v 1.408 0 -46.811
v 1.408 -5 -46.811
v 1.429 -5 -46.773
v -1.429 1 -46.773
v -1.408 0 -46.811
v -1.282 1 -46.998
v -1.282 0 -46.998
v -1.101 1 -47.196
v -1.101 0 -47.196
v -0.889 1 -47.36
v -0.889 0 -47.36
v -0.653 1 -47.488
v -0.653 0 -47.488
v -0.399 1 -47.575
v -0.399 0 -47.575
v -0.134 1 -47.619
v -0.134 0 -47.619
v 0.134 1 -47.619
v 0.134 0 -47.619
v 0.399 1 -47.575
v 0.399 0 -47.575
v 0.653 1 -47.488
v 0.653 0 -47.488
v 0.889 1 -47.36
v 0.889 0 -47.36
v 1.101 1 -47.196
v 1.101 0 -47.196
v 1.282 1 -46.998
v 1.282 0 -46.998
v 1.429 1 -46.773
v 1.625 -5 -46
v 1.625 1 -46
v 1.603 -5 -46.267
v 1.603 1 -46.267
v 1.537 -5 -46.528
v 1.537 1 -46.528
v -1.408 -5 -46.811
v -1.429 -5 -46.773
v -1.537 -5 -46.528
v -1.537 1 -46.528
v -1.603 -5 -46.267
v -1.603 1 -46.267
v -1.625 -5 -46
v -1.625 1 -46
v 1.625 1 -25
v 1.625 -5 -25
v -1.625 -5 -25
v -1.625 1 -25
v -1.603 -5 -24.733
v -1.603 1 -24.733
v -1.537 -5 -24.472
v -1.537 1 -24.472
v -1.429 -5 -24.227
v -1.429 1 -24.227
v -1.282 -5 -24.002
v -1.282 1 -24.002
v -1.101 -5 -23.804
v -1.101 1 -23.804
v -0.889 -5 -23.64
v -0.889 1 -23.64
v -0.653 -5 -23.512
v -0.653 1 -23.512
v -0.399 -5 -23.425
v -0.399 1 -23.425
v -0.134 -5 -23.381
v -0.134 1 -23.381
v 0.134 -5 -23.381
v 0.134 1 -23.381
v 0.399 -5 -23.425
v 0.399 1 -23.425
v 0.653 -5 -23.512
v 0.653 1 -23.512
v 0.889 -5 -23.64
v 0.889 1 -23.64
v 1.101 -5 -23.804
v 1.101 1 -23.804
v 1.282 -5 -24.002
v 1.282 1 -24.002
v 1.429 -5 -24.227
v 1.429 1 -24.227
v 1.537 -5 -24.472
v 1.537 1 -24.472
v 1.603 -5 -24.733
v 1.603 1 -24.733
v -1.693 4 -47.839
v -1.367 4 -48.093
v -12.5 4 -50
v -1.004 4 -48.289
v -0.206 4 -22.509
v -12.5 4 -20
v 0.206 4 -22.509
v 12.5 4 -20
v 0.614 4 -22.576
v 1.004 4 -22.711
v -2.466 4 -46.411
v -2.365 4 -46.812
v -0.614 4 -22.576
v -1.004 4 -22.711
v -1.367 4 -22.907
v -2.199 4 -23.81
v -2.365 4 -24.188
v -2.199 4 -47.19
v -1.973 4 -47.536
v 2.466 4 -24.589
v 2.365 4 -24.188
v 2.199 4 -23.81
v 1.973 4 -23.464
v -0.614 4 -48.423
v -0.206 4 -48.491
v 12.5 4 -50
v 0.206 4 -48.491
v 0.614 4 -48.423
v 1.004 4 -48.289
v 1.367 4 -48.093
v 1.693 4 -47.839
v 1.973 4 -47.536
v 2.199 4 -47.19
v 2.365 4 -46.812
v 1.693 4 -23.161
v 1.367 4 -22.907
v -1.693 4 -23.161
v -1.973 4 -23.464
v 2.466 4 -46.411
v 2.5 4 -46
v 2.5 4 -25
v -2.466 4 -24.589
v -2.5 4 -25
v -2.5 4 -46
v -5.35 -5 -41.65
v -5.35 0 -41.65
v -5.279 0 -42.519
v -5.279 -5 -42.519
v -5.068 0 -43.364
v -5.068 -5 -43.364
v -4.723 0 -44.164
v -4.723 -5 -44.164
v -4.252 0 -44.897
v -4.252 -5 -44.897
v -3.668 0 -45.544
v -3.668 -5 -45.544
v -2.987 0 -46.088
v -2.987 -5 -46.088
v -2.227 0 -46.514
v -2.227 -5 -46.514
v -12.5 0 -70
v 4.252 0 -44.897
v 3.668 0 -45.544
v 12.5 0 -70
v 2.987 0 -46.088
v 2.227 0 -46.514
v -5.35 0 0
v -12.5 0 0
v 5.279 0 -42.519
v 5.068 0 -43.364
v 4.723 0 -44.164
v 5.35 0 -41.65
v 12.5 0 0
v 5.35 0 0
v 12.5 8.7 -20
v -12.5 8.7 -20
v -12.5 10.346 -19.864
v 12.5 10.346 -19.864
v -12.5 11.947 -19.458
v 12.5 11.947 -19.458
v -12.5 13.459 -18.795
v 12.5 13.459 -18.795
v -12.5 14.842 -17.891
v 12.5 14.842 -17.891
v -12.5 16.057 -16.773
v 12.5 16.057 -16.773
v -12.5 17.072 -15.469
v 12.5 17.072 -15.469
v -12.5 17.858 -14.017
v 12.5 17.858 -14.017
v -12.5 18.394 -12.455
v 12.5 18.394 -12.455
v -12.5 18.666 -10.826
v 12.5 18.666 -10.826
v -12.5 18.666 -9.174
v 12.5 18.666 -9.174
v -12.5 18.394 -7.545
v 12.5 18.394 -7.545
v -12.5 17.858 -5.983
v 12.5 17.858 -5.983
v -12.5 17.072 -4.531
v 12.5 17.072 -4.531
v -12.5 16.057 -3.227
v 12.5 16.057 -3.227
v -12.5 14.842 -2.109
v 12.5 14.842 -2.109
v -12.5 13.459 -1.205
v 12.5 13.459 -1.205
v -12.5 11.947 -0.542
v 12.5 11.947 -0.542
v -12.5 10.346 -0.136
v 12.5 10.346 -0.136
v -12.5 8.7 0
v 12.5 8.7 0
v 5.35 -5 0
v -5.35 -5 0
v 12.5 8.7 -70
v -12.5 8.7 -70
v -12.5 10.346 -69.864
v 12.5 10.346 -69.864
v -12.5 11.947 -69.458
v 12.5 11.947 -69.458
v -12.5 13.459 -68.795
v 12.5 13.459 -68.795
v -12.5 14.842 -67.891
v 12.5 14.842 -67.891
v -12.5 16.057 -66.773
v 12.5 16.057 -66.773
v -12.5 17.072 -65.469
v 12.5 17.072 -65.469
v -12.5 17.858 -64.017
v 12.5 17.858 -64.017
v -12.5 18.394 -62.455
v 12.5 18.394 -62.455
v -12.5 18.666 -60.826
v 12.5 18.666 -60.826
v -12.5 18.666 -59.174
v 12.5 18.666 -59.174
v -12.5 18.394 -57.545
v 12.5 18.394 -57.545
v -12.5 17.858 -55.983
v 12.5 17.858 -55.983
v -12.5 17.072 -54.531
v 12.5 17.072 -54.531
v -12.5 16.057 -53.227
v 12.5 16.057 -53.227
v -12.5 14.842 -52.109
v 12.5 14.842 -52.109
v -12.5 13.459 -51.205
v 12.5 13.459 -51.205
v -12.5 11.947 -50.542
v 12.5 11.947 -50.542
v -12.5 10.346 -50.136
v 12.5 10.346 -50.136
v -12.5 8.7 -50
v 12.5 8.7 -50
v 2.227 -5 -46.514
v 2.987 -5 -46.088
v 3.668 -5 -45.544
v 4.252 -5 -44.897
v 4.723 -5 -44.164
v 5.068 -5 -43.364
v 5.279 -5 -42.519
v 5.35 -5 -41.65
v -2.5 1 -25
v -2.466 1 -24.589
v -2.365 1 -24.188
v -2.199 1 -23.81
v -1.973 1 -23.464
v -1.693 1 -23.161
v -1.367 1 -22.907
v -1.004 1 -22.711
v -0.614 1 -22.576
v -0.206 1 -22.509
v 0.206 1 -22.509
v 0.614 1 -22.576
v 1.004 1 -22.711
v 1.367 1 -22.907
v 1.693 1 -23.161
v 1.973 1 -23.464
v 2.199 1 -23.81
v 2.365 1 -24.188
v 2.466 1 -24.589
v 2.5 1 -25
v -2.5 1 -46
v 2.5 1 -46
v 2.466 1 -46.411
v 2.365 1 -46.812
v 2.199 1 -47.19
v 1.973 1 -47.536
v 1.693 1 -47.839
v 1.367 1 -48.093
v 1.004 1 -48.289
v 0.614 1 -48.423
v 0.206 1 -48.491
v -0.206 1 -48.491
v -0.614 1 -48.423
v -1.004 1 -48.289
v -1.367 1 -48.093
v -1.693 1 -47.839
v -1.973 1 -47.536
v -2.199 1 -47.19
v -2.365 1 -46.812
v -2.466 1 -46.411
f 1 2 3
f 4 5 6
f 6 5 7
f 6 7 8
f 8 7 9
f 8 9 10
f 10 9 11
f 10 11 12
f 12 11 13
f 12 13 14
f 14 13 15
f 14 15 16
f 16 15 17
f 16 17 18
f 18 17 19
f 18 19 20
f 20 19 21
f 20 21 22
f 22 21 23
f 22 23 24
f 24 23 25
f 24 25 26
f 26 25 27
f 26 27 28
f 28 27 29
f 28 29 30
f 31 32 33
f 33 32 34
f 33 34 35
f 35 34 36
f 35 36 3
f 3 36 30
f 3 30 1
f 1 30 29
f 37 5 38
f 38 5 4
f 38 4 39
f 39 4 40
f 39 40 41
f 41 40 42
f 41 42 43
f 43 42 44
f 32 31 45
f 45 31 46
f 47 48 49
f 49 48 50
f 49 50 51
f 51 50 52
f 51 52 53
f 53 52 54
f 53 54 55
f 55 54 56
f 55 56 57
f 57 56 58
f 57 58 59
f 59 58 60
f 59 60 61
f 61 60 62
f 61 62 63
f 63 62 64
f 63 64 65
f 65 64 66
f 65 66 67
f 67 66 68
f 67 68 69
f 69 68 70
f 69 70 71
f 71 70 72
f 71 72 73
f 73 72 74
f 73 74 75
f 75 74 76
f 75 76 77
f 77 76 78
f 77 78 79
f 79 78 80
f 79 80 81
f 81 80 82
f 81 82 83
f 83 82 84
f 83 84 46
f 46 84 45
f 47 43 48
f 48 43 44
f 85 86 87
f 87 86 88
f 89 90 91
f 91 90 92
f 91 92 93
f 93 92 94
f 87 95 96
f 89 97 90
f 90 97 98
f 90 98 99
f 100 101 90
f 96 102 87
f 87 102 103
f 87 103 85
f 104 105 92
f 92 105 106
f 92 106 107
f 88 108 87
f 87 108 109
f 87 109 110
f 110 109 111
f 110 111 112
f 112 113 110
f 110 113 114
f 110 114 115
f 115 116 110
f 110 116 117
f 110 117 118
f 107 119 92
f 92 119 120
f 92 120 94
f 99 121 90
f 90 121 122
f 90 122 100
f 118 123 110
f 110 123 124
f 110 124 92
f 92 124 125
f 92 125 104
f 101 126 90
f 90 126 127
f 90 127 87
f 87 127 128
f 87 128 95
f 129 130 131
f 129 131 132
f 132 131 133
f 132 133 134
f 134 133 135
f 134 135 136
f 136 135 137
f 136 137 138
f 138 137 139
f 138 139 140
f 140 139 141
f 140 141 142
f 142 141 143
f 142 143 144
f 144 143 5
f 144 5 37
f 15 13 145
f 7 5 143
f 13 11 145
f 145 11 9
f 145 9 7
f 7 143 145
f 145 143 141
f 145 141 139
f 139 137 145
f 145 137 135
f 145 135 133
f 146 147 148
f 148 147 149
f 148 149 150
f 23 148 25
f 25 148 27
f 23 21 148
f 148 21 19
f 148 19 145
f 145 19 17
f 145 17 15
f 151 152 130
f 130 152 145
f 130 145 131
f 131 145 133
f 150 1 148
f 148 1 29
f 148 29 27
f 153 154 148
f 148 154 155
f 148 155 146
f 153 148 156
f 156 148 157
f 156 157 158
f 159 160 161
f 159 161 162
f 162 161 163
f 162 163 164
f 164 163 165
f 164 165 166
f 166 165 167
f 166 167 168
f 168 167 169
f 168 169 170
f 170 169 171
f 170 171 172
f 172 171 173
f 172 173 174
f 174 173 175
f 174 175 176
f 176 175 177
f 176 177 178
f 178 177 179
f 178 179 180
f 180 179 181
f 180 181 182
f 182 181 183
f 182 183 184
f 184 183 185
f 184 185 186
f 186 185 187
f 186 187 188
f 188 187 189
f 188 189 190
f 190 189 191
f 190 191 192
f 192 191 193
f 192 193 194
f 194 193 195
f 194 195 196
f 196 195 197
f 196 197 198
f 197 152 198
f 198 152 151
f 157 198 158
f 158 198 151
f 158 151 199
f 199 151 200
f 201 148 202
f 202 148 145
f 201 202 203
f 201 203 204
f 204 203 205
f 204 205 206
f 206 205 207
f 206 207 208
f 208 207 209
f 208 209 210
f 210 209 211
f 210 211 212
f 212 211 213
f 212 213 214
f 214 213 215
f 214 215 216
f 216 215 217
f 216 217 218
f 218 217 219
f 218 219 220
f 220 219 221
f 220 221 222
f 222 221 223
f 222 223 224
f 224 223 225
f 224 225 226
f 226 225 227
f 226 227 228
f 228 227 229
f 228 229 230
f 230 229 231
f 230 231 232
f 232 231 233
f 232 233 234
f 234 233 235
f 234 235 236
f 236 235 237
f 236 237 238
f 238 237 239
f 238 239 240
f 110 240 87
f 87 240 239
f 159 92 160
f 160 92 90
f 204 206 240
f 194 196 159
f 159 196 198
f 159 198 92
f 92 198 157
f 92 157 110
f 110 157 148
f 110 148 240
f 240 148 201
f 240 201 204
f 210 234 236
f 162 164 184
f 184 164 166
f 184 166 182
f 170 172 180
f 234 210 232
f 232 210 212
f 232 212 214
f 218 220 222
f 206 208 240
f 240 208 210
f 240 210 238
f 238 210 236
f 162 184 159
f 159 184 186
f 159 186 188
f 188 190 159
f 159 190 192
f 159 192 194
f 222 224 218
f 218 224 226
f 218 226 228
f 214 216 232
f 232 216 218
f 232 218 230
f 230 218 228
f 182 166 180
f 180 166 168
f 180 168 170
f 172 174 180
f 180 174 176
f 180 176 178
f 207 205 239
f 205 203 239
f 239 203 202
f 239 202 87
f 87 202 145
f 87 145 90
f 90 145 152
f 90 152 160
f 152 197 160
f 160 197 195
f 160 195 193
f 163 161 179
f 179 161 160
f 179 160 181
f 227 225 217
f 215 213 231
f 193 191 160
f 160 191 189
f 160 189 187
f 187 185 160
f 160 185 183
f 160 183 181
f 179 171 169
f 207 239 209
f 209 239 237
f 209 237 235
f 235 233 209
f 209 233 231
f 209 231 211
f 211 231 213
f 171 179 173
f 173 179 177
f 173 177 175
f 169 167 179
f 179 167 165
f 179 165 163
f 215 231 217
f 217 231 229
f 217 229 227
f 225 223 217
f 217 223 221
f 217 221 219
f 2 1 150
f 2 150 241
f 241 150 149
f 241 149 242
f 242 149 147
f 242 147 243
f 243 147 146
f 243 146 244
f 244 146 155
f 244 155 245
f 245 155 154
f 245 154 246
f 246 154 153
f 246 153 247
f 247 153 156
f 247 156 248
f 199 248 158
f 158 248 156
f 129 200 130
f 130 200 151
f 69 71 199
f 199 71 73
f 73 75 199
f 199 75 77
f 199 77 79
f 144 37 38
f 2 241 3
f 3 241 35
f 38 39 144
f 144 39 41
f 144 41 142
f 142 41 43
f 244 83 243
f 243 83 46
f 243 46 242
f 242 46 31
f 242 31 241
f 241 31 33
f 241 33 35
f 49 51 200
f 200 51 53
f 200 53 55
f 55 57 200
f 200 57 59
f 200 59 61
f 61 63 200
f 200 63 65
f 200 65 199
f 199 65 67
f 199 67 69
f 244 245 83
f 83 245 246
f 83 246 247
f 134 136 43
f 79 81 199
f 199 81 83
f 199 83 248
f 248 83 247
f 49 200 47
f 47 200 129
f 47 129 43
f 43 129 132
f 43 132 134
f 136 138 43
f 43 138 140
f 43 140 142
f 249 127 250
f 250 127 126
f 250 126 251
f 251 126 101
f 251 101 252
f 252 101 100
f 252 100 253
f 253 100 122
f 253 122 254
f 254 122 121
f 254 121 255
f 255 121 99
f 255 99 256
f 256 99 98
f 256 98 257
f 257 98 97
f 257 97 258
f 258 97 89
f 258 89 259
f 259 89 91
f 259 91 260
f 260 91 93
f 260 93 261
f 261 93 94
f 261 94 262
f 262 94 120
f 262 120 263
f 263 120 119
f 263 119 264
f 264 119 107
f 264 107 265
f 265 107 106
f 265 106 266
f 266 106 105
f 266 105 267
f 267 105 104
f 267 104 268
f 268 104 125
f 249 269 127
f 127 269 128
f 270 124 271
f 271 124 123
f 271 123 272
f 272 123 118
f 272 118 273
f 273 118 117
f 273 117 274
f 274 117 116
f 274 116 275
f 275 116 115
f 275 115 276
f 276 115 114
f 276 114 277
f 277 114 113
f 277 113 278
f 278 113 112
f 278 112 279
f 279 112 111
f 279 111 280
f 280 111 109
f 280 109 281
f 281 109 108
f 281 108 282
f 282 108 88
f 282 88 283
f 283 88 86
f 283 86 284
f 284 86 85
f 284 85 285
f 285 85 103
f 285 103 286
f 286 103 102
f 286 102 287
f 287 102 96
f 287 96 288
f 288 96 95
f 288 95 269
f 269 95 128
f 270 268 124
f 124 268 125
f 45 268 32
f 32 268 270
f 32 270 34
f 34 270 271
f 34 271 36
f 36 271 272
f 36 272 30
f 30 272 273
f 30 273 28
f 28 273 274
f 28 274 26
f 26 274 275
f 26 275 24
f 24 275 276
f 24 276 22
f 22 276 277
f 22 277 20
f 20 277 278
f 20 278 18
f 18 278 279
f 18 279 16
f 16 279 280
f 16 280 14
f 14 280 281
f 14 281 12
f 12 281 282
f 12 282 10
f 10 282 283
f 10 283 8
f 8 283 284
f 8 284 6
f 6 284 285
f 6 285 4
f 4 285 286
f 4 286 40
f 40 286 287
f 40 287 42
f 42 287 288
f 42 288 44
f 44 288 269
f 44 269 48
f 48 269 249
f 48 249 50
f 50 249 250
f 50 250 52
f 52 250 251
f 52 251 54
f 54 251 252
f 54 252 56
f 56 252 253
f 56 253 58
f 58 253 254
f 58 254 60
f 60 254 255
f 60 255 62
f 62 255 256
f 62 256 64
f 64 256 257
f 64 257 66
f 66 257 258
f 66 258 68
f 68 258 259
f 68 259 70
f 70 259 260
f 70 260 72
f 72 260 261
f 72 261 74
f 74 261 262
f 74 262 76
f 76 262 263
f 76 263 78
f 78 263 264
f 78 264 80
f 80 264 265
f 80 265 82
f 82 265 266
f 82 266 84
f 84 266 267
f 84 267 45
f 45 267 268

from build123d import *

# Parameters (mm, degrees)
BOSS_EXTRUDE1_DEPTH     = 12.5
SKETCH2_W               = 10.7
SKETCH2_H               = 41.65
BOSS_EXTRUDE2_DEPTH     = 5
CUT_EXTRUDE1_DEPTH      = 19.7
CUT_EXTRUDE1_DEPTH_BACK = 6
CUT_EXTRUDE2_START      = 4
CUT_EXTRUDE2_DEPTH      = 3


with BuildPart() as part:
    # Sketch1 → Boss-Extrude1 (new body, symmetric)
    with BuildSketch(Plane(origin=(0, 0, 0), x_dir=(0, 0, -1), z_dir=(1, 0, 0))):
        with BuildLine():
            Line((0, 0), (70, 0))
            Line((70, 0), (70, 8.7))
            ThreePointArc((70, 8.7), (60, 18.7), (50, 8.7))
            Line((50, 8.7), (50, 4))
            Line((50, 4), (20, 4))
            Line((20, 4), (20, 8.7))
            ThreePointArc((20, 8.7), (10, 18.7), (0, 8.7))
            Line((0, 8.7), (0, 0))
        make_face()
    extrude(amount=BOSS_EXTRUDE1_DEPTH, both=True)

    # Sketch2 → Boss-Extrude2 (add)
    with BuildSketch(Plane(origin=(0, 0, 0), x_dir=(1, 0, 0), z_dir=(0, 1, 0))):
        with BuildLine():
            ThreePointArc((-5.35, 41.65), (0, 47), (5.35, 41.65))
            Line((5.35, 41.65), (-5.35, 41.65))
        make_face()
        with Locations((0, 20.825)):
            Rectangle(SKETCH2_W, SKETCH2_H)
    extrude(amount=-BOSS_EXTRUDE2_DEPTH)

    # Sketch4 → Cut-Extrude1 (cut, two sides)
    with BuildSketch(Plane(origin=(0, 0, 0), x_dir=(1, 0, 0), z_dir=(0, 1, 0))) as cut_extrude1_sk:
        with BuildLine():
            Line((-1.625, 40), (1.625, 40))
            Line((1.625, 40), (1.625, 46))
            ThreePointArc((1.625, 46), (0, 47.625), (-1.625, 46))
            Line((-1.625, 46), (-1.625, 40))
        make_face()
        with BuildLine():
            Line((1.625, 38.100164481), (1.625, 40))
            ThreePointArc((1.625, 40), (0, 38.375), (-1.625, 40))
            Line((-1.625, 40), (-1.625, 38.100164481))
            ThreePointArc((-1.625, 38.100164481), (0, 37.5), (1.625, 38.100164481))
        make_face()
        with BuildLine():
            ThreePointArc((-1.625, 40), (0, 38.375), (1.625, 40))
            Line((1.625, 40), (-1.625, 40))
        make_face()
        with BuildLine():
            Line((1.625, 32.899835519), (1.625, 38.100164481))
            ThreePointArc((1.625, 38.100164481), (0, 37.5), (-1.625, 38.100164481))
            Line((-1.625, 38.100164481), (-1.625, 32.899835519))
            ThreePointArc((-1.625, 32.899835519), (0, 33.5), (1.625, 32.899835519))
        make_face()
        with BuildLine():
            ThreePointArc((-1.625, 31), (0, 32.625), (1.625, 31))
            Line((1.625, 31), (1.625, 32.899835519))
            ThreePointArc((1.625, 32.899835519), (0, 33.5), (-1.625, 32.899835519))
            Line((-1.625, 32.899835519), (-1.625, 31))
        make_face()
        with BuildLine():
            Line((-1.625, 31), (1.625, 31))
            ThreePointArc((1.625, 31), (0, 32.625), (-1.625, 31))
        make_face()
        with BuildLine():
            Line((1.625, 25), (1.625, 31))
            Line((1.625, 31), (-1.625, 31))
            Line((-1.625, 31), (-1.625, 25))
            ThreePointArc((-1.625, 25), (0, 23.375), (1.625, 25))
        make_face()
    extrude(amount=CUT_EXTRUDE1_DEPTH, mode=Mode.SUBTRACT)
    extrude(cut_extrude1_sk.sketch, amount=-CUT_EXTRUDE1_DEPTH_BACK, mode=Mode.SUBTRACT)

    # Sketch4<3> → Cut-Extrude2 (cut)
    with BuildSketch(Plane(origin=(0, 0, 0), x_dir=(1, 0, 0), z_dir=(0, 1, 0)).offset(CUT_EXTRUDE2_START)):
        with BuildLine():
            Line((2.5, 25), (2.5, 31))
            Line((2.5, 31), (1.625, 31))
            Line((1.625, 31), (1.625, 25))
            ThreePointArc((1.625, 25), (0, 23.375), (-1.625, 25))
            Line((-1.625, 25), (-1.625, 31))
            Line((-1.625, 31), (-2.5, 31))
            Line((-2.5, 31), (-2.5, 25))
            ThreePointArc((-2.5, 25), (0, 22.5), (2.5, 25))
        make_face()
        with BuildLine():
            ThreePointArc((-1.625, 32.899835519), (-2.270737766, 32.045825033), (-2.5, 31))
            Line((-2.5, 31), (-1.625, 31))
            Line((-1.625, 31), (-1.625, 32.899835519))
        make_face()
        with BuildLine():
            ThreePointArc((-1.625, 38.100164481), (-2.270737766, 38.954174967), (-2.5, 40))
            Line((-2.5, 40), (-2.5, 31))
            ThreePointArc((-2.5, 31), (-2.270737766, 32.045825033), (-1.625, 32.899835519))
            Line((-1.625, 32.899835519), (-1.625, 38.100164481))
        make_face()
        with BuildLine():
            Line((1.625, 31), (2.5, 31))
            ThreePointArc((2.5, 31), (2.270737766, 32.045825033), (1.625, 32.899835519))
            Line((1.625, 32.899835519), (1.625, 31))
        make_face()
        with BuildLine():
            Line((2.5, 31), (2.5, 40))
            ThreePointArc((2.5, 40), (2.270737766, 38.954174967), (1.625, 38.100164481))
            Line((1.625, 38.100164481), (1.625, 32.899835519))
            ThreePointArc((1.625, 32.899835519), (2.270737766, 32.045825033), (2.5, 31))
        make_face()
        with BuildLine():
            ThreePointArc((1.625, 38.100164481), (2.270737766, 38.954174967), (2.5, 40))
            Line((2.5, 40), (1.625, 40))
            Line((1.625, 40), (1.625, 38.100164481))
        make_face()
        with BuildLine():
            Line((2.5, 40), (2.5, 46))
            ThreePointArc((2.5, 46), (0, 48.5), (-2.5, 46))
            Line((-2.5, 46), (-2.5, 40))
            Line((-2.5, 40), (-1.625, 40))
            Line((-1.625, 40), (-1.625, 46))
            ThreePointArc((-1.625, 46), (0, 47.625), (1.625, 46))
            Line((1.625, 46), (1.625, 40))
            Line((1.625, 40), (2.5, 40))
        make_face()
        with BuildLine():
            Line((-1.625, 40), (-2.5, 40))
            ThreePointArc((-2.5, 40), (-2.270737766, 38.954174967), (-1.625, 38.100164481))
            Line((-1.625, 38.100164481), (-1.625, 40))
        make_face()
    extrude(amount=-CUT_EXTRUDE2_DEPTH, mode=Mode.SUBTRACT)


solid = part.part
